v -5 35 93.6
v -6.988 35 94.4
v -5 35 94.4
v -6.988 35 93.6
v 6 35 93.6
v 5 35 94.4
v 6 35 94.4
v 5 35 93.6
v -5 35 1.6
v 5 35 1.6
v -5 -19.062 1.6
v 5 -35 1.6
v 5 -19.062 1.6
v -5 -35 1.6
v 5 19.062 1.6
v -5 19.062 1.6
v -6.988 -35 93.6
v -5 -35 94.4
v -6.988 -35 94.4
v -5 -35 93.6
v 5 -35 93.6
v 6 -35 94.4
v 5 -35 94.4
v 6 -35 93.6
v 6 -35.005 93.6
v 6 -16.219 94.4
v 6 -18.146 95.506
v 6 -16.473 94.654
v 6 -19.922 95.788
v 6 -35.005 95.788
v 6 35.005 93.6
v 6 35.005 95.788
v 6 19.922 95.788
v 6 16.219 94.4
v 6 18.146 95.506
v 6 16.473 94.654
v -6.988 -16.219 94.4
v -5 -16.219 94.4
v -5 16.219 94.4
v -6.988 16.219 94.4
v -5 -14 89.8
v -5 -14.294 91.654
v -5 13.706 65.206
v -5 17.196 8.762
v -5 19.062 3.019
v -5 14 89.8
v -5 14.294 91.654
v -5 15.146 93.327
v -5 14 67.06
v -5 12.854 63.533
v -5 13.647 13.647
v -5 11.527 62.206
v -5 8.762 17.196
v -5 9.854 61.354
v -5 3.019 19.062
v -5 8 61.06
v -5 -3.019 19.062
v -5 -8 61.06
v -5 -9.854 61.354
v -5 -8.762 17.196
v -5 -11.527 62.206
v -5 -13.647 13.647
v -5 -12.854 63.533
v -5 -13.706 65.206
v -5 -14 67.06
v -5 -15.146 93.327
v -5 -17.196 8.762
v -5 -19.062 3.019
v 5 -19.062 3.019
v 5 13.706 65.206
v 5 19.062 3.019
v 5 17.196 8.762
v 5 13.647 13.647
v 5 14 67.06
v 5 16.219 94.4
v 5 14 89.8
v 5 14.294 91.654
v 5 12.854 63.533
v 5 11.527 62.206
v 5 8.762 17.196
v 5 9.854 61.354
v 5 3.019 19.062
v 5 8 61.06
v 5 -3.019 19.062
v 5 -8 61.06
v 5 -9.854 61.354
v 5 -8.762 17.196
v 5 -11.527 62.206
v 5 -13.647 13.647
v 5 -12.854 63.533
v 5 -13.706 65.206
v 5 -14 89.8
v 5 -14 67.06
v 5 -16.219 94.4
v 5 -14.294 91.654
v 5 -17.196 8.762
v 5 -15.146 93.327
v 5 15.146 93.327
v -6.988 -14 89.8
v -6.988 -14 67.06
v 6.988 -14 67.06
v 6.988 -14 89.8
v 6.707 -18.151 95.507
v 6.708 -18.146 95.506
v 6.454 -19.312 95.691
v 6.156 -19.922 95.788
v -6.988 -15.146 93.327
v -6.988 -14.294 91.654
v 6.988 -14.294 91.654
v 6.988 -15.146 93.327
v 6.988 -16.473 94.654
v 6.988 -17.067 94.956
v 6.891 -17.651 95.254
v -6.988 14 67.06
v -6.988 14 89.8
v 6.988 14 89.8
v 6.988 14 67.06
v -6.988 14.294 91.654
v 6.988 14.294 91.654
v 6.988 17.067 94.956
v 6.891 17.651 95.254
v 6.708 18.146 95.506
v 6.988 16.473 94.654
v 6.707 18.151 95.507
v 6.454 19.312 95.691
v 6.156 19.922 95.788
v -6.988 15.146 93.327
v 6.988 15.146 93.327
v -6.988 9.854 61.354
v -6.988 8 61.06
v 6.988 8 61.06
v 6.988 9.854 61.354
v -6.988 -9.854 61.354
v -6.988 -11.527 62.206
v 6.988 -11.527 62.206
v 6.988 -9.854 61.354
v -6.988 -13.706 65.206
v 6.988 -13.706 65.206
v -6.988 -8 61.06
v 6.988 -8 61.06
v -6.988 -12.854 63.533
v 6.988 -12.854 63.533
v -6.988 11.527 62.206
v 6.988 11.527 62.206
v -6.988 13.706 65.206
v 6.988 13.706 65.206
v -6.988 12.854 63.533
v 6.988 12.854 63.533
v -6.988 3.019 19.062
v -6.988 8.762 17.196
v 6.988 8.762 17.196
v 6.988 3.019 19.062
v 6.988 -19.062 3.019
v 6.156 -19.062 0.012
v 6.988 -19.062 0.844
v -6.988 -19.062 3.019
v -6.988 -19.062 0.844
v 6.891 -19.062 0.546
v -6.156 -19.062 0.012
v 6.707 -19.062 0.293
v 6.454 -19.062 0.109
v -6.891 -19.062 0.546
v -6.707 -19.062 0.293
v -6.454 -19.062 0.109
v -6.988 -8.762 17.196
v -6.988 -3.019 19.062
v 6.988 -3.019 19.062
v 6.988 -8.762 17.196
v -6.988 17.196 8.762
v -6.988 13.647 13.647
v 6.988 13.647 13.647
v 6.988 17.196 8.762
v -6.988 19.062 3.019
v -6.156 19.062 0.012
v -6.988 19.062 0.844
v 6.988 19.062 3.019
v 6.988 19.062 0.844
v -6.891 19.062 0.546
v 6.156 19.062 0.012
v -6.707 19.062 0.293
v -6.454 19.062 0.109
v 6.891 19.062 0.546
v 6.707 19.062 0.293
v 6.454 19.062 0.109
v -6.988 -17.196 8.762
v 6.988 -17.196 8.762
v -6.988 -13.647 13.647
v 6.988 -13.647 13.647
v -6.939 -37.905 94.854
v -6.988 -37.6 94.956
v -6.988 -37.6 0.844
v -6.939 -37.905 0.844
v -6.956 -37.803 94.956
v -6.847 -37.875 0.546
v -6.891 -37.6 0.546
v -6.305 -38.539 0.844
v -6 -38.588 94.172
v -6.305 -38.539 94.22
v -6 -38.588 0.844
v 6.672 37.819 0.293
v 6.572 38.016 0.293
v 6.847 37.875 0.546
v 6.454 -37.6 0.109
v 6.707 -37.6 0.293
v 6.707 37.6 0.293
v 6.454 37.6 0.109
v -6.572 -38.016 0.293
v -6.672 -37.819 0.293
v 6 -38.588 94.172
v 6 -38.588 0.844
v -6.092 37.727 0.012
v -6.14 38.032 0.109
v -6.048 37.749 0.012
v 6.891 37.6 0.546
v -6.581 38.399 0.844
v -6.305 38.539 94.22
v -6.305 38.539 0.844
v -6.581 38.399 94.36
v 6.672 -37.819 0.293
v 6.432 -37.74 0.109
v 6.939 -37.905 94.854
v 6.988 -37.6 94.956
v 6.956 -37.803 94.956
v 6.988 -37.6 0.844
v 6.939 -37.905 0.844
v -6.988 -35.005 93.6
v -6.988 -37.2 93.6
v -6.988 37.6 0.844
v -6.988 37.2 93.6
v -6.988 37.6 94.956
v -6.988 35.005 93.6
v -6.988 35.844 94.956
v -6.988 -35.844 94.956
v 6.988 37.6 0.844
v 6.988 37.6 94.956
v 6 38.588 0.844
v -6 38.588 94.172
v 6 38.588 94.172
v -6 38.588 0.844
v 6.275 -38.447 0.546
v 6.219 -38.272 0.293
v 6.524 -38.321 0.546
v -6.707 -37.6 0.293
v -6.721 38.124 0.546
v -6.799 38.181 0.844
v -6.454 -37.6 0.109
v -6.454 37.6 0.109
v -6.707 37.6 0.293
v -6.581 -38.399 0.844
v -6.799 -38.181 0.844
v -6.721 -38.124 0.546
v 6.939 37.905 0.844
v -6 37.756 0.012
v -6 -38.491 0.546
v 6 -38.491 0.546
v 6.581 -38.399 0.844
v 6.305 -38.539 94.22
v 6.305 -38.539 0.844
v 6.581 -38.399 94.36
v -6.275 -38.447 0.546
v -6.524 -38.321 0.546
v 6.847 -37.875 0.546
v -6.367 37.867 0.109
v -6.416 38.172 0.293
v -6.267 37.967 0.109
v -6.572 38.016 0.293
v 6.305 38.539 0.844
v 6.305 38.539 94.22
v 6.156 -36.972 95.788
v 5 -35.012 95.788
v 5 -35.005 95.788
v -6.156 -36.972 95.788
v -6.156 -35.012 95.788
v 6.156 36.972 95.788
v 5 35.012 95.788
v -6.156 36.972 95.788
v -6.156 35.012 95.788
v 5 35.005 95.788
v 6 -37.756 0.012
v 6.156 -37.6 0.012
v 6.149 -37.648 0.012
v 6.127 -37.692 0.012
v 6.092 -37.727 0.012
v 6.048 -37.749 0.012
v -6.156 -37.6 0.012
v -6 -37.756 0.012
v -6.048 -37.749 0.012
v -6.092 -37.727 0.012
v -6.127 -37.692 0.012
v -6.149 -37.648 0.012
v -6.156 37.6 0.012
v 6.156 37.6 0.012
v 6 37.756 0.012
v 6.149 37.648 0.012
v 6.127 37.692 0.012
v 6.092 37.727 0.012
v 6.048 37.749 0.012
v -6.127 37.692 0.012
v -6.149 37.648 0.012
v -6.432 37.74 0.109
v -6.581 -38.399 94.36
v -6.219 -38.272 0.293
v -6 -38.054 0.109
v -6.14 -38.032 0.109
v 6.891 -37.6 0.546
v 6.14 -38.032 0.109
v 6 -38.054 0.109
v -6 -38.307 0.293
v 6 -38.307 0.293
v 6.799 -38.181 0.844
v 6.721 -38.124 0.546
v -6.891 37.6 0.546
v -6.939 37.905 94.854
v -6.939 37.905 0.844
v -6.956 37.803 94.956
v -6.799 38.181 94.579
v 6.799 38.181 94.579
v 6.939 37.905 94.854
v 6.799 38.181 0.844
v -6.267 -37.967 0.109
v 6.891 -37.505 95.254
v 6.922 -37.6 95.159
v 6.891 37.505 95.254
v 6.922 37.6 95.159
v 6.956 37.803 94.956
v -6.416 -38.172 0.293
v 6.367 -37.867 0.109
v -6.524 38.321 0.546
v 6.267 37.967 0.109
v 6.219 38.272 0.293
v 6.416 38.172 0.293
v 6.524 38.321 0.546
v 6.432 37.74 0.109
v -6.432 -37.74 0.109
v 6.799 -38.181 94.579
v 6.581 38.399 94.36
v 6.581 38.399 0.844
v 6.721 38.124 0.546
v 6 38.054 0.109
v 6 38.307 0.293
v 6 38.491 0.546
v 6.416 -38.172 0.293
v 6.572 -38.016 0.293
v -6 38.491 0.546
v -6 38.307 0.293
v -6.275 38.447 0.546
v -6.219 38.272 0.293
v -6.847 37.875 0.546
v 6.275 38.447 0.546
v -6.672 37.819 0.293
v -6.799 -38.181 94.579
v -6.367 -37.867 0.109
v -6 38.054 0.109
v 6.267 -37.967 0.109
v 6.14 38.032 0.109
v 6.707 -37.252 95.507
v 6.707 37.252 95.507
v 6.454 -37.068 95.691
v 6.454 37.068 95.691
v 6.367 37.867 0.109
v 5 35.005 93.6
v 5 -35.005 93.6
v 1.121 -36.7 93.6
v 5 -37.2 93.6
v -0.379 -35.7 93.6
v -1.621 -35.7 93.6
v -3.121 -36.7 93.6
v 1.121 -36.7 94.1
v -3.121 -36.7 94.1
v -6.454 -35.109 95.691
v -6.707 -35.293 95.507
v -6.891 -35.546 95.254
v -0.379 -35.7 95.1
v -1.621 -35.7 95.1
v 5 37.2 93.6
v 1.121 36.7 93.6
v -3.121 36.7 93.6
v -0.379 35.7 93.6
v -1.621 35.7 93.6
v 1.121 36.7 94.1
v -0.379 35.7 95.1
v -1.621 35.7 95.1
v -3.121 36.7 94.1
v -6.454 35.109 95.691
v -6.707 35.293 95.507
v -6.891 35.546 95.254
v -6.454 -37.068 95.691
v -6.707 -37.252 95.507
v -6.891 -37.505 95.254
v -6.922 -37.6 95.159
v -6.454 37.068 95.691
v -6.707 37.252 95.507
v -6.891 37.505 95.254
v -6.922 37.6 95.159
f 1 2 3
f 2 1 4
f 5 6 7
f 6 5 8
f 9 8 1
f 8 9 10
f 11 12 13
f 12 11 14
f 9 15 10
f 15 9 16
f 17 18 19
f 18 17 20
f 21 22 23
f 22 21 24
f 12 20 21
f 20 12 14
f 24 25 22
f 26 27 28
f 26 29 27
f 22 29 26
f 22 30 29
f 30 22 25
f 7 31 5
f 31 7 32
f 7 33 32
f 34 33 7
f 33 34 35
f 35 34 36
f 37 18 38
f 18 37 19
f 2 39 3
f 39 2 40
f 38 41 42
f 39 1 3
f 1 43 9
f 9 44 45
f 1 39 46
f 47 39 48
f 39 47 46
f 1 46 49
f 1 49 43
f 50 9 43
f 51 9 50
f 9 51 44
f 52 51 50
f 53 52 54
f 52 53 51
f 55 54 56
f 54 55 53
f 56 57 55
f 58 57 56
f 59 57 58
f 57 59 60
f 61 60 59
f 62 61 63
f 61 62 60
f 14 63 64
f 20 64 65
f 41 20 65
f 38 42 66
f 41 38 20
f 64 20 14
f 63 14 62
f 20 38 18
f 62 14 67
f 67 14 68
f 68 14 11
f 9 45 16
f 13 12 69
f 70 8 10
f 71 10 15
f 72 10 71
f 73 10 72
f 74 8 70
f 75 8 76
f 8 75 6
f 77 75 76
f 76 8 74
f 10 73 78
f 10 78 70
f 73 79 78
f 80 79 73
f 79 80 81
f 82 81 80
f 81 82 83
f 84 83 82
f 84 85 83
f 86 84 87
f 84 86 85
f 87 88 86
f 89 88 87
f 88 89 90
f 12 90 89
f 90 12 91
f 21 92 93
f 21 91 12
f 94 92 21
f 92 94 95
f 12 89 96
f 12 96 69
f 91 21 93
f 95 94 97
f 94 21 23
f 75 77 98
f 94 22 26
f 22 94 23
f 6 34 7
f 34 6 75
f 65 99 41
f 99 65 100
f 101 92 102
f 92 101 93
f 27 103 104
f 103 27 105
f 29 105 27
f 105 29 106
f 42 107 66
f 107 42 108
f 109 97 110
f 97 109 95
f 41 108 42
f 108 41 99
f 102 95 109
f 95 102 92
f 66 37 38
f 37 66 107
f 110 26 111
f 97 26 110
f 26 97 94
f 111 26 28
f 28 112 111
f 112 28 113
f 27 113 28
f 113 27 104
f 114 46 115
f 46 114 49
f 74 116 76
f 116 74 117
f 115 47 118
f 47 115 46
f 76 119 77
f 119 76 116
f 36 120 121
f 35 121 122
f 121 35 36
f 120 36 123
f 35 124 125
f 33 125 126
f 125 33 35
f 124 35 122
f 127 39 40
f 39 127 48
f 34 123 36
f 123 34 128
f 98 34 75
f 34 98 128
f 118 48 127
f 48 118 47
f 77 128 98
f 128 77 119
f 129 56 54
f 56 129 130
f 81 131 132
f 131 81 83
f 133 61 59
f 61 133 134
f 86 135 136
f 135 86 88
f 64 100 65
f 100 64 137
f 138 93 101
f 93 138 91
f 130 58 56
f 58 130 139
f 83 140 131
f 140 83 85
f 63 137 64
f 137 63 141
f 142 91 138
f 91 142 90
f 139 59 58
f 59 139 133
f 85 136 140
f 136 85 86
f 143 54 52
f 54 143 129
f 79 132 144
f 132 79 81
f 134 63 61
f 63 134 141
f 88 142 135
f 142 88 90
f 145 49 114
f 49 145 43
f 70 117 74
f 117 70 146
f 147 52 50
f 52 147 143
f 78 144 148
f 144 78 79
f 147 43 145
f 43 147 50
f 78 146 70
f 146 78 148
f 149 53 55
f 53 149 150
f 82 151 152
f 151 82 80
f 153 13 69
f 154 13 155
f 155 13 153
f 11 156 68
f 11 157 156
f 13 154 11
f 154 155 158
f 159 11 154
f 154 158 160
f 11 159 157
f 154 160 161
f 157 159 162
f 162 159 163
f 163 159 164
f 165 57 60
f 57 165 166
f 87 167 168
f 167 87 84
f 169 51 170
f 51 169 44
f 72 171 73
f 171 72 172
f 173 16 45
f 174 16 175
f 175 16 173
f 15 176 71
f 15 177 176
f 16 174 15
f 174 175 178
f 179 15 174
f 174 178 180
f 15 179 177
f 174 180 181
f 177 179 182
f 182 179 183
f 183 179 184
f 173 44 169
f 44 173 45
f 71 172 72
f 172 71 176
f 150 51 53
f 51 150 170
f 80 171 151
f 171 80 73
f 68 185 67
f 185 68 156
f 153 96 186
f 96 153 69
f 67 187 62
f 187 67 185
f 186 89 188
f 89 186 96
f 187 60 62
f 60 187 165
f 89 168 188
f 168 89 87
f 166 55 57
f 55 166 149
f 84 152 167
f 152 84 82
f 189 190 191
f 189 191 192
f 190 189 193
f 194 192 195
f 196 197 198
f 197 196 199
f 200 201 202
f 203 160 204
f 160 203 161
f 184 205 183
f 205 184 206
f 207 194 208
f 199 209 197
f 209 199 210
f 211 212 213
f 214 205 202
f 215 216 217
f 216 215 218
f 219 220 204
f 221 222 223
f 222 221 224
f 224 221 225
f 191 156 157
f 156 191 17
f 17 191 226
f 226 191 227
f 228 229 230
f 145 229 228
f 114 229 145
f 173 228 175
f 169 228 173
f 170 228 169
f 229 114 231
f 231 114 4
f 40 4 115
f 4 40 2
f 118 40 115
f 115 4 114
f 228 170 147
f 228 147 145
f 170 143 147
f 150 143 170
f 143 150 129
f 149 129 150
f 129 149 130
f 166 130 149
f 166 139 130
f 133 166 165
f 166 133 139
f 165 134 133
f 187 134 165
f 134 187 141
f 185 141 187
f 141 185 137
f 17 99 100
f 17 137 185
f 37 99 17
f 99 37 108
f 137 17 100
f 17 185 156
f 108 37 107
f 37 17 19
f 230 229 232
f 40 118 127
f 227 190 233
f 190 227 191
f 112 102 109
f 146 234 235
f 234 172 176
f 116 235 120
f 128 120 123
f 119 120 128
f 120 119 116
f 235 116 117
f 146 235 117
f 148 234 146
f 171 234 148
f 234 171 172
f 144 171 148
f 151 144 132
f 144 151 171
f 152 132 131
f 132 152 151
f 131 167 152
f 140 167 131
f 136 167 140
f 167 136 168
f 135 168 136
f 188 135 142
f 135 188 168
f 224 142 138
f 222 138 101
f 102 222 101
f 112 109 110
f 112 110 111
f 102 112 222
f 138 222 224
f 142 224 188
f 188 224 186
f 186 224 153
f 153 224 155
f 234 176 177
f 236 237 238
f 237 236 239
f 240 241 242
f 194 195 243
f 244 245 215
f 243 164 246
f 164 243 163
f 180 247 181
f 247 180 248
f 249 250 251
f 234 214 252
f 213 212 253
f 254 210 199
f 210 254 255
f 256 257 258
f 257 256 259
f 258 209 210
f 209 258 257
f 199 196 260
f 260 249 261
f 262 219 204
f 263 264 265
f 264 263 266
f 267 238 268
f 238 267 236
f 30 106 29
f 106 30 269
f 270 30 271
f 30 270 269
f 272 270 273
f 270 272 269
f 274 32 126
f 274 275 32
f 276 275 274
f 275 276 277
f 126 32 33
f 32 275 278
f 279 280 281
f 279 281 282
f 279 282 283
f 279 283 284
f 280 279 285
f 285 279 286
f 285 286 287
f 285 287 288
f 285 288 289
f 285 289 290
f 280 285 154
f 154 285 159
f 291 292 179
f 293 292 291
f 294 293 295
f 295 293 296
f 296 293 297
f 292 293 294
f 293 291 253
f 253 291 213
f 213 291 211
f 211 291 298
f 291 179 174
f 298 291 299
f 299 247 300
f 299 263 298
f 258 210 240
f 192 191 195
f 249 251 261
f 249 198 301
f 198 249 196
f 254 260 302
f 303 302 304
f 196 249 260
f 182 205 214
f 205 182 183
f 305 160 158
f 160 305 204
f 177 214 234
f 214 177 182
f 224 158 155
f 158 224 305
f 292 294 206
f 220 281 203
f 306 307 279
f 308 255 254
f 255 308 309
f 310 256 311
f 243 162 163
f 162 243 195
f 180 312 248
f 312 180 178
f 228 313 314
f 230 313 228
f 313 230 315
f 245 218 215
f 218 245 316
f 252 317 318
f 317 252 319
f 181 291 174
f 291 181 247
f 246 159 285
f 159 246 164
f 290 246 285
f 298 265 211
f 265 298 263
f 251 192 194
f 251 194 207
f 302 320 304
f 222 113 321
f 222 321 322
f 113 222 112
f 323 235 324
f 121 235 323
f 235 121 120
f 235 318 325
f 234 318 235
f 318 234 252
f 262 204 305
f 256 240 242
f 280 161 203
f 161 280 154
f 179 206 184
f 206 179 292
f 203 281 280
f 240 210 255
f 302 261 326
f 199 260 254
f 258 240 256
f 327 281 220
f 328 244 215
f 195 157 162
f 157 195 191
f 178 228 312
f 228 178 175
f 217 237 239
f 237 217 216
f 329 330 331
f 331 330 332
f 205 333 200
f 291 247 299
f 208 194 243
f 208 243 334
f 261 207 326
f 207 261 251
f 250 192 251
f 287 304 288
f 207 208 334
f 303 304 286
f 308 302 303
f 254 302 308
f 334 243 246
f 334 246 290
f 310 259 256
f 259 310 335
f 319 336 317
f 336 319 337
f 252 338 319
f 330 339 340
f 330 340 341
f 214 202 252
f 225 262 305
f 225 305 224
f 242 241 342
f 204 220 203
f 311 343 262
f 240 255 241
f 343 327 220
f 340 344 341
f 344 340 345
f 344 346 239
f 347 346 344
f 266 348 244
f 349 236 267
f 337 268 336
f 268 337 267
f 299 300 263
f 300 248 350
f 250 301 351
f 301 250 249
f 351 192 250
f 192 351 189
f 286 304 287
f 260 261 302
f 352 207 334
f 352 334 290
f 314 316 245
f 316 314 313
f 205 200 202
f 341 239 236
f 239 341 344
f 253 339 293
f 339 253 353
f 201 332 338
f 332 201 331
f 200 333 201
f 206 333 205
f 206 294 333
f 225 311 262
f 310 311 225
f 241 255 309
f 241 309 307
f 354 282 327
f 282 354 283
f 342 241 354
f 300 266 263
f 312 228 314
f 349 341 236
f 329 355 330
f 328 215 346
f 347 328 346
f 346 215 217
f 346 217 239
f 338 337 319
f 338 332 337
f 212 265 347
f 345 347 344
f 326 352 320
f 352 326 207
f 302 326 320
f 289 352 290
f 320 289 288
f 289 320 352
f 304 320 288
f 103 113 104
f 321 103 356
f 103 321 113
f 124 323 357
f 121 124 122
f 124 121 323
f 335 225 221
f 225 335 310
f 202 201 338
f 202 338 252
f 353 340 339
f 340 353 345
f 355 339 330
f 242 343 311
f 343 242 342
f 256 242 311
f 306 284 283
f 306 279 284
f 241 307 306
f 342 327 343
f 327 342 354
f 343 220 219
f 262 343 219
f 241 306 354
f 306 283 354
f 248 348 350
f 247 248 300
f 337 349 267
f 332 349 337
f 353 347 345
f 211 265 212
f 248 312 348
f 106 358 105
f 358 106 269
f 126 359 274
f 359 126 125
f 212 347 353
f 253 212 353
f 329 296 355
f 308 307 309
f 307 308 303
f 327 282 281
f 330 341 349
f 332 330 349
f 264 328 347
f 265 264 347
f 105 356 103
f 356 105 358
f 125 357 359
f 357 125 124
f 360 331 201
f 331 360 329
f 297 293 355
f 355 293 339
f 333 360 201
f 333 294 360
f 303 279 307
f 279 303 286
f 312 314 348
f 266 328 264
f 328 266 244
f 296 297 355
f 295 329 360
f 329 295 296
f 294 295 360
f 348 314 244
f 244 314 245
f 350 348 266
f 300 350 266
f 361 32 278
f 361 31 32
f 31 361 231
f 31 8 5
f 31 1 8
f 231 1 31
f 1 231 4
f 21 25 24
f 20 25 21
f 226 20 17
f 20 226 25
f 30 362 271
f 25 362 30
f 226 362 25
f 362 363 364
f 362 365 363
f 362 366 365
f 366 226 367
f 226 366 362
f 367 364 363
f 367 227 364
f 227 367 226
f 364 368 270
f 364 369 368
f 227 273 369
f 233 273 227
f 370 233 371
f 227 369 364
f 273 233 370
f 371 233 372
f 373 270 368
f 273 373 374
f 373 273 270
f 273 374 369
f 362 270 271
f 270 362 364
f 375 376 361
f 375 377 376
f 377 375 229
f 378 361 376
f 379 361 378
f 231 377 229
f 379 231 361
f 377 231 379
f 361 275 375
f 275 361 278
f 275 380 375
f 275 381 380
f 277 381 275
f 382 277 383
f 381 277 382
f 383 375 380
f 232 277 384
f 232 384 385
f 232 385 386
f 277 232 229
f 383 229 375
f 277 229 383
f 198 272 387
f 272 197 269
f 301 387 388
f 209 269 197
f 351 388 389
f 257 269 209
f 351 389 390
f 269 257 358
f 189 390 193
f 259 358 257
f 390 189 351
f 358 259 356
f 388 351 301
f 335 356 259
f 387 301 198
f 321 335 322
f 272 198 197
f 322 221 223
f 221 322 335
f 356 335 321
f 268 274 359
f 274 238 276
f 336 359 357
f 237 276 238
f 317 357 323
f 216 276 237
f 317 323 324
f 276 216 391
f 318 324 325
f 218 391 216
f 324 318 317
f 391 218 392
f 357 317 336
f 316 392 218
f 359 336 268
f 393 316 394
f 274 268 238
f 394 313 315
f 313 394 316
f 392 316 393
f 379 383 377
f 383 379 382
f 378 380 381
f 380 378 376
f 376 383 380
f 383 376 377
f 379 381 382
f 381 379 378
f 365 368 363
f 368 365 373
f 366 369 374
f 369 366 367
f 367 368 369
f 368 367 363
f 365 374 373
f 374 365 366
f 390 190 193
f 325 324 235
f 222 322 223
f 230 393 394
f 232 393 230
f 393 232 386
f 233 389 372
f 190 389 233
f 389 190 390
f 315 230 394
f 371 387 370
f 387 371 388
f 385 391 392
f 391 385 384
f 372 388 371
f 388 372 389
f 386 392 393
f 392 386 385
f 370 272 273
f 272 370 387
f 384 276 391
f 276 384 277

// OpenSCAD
// Roundness
$fn = 20;
// Wall Thickness
gWT = 1.6;

// Box Height
LidH = 2.2;
RailThick = 1.4;
RailWidth = LidH + RailThick;

// Render
Objects = "Box"; //  [Both, Box, Lid]

// Width of a single card + buffer
CardWidth = 70;    

// Height of a single card (exact)
CardHeight = 92;  

// Box Height  (Total = height card + gWT (bottom) + 2.2 lid + buffer)
BoxHeight = CardHeight+gWT+LidH; 

// Size of each Card slot
Slots = [10];

// Number of rows of cards
Rows = 1;

// Slant the front of the box 
SlantFront = true;

// Labels for each card slot  (only recommended when Rows=1)
Labels = ["", "Markets", "",""];

// Size of botton cutout, % of width
Removal = 0.5;
AccessDepth = 0.3;



// Tolerance
gTol = 0.3;
// Type of lid pattern
gPattern = "Diamond"; //  [Hex, Diamond, Web, Solid, Fancy]



function SumList(list, start, end) = (start == end) ? list[start] : list[start] + SumList(list, start+1, end);

Angle = (((BoxHeight-gWT)/CardHeight) < 1) ? acos((BoxHeight-gWT)/CardHeight) : 0;
  
//Wall space for tilted wall
gWS =  gWT / cos(Angle);
// BoxWidth = CardWidth + 2*gWT;  obsolete

SlotsAdj = [for (i = [0:len(Slots)-1]) Slots[i]/cos(Angle)];
BoxLength = SumList(SlotsAdj,0,len(SlotsAdj)-1) + 2 *(len(Slots)+1);
RailPlace = [for (i = [0:len(Slots)-1]) -BoxLength/2 + SumList(SlotsAdj,0,i)+ (i+1)*2 ];

TotalX = BoxLength;
TotalY = CardWidth + 2*RailWidth;
TotalZ = BoxHeight;

// Height not counting the lid
AdjBoxHeight = TotalZ - LidH;

// final diminsions 
echo(TotalX,TotalY,TotalZ, Angle, RailPlace);

module RCube(x,y,z,ipR=4) {
    translate([-x/2,-y/2,0]) hull(){
      translate([ipR,ipR,ipR]) sphere(ipR);
      translate([x-ipR,ipR,ipR]) sphere(ipR);
      translate([ipR,y-ipR,ipR]) sphere(ipR);
      translate([x-ipR,y-ipR,ipR]) sphere(ipR);
      translate([ipR,ipR,z-ipR]) sphere(ipR);
      translate([x-ipR,ipR,z-ipR]) sphere(ipR);
      translate([ipR,y-ipR,z-ipR]) sphere(ipR);
      translate([x-ipR,y-ipR,z-ipR]) sphere(ipR);
      }  
} 

 module regular_polygon(order, r=1){
 	angles=[ for (i = [0:order-1]) i*(360/order) ];
 	coords=[ for (th=angles) [r*cos(th), r*sin(th)] ];
 	polygon(coords);
 }

module football() {
    scale([0.7,0.7])
    intersection(){
        translate([-4,0]) circle(6);
        translate([4,0]) circle(6);
    }
}

module diamond_lattice(ipX, ipY, DSize, WSize)  {

    lOffset = DSize + WSize;

	difference()  {
		square([ipX, ipY]);
		for (x=[0:lOffset:ipX]) {
            for (y=[0:lOffset:ipY]){
  			   translate([x, y])  regular_polygon(4, r=DSize/2);
			   translate([x+lOffset/2, y+lOffset/2]) regular_polygon(4, r=DSize/2);
		    }
        }        
	}
}

module leaf_lattice(ipX, ipY, DSize, WSize)  {
    lXOffset = 4;
    lYOffset = 22;

	difference()  {
		square([ipX, ipY]);
		for (x=[0:lXOffset:ipX]) {
            for (y=[0:lYOffset:ipY+lYOffset]){
  			   translate([x, y+(1/8*lYOffset)+0.5]) rotate([0,0,-45]) football();
			   translate([x, y+(3/8*lYOffset)]) rotate([0,0,45]) football();
  			   translate([x, y-(1/8*lYOffset)-0.5]) rotate([0,0,-45]) football();
			   translate([x, y-(3/8*lYOffset)]) rotate([0,0,45]) football();		}
        }  
	}
}

module lid(ipPattern = "Hex", ipTol = 0.3){
  lAdjX = TotalX;  // remove 1mm for the backstop
  lAdjY = TotalY-RailWidth*2-ipTol*2;  
  lAdjZ = LidH;
  CutX = lAdjX - 8;
  CutY = lAdjY - 8;
  lFingerX = 15;
  lFingerY = 16;  

  // main square with center removed for a pattern. 0.01 addition is a kludge to avoid a 2d surface remainging when substracting the lid from the box.
  difference() {
      translate([0,0,lAdjZ/2]) cube([lAdjX+0.01, lAdjY+0.01 , lAdjZ], center=true);

      translate([0,0,lAdjZ/2]) cube([CutX, CutY, lAdjZ], center = true);

      // remove 1mm for backdrop
//      translate([TotalX/2-1/2,0,LidH/2])cube([1.01,TotalY-RailWidth,LidH],center=true);

     // make a slot for the latch can flex         
     translate([TotalX/2,TotalY/2-RailWidth-1.4,-1]) RCube(18,0.8,4,0.4);
     translate([TotalX/2,-TotalY/2+RailWidth+1.4,-1]) RCube(18,0.8,4,0.4);
  }
  
  // The Side triangles
  difference() {
    intersection () {
      union () {
          translate([-lAdjX/2,-lAdjY/2-LidH,LidH]) rotate([0,90,0]) linear_extrude(TotalX-2) polygon([[LidH,0],[LidH,LidH],[0,LidH]], paths=[[0,1,2]]);
          translate([-lAdjX/2,lAdjY/2,LidH]) rotate([0,90,0]) linear_extrude(TotalX-2) polygon([[0,0],[LidH,0],[LidH,LidH]], paths=[[0,1,2]]);
      }
      
      // check if this is real lid (ipTol>0) or negative lid (iptol = 0)
      // if real lid remove center for pattern and remove latches
      if (ipTol>0) 
         {cube([lAdjX, lAdjY + 2*LidH-0.2, lAdjZ*2], center=true);}
    }
       
    if (ipTol>0)
    {
        // cut out slots for the latch  7mm in instead of 8 due to backstop   
        translate([TotalX/2-7,lAdjY/2+RailWidth/2+ipTol,LidH/2]) scale([1.5,1,1]) rotate([0,0,45]) cube ([2+ipTol,2+ipTol,LidH+1],center=true);
          
        translate([TotalX/2-7,-lAdjY/2-RailWidth/2-ipTol,LidH/2]) scale([1.5,1,1]) rotate([0,0,45]) cube ([2+ipTol,2+ipTol,LidH+1],center=true);
  
        // trip the rail to ease going past the nub
        translate([TotalX/2,TotalY/2-LidH/2-ipTol,0]) cube([12,LidH,LidH*2],center=true); 
        translate([TotalX/2,-TotalY/2+LidH/2+ipTol,0]) cube([12,LidH,LidH*2],center=true); 
    }
    
  }
 
  // Finger slot
  difference () {
      translate([-CutX/2,-lFingerY/2,0]) cube([lFingerX, lFingerY, lAdjZ]); 
      translate([-CutX/2+lFingerX/2,0,20+LidH/2])sphere(20);     
  }

  // Solid top
  if (ipPattern == "Solid") 
      {   
       difference (){ 
         translate([-CutX/2,-CutY/2,0]) cube([CutX, CutY,   lAdjZ]);
         translate([-CutX/2,-lFingerY/2,0]) cube([lFingerX, lFingerY, lAdjZ]); 
      }
    }
    
  // Diamond top
  if (ipPattern == "Diamond") 
    {
      difference (){ 
        translate([-CutX/2,-CutY/2,0]) linear_extrude(height = lAdjZ) diamond_lattice(CutX,CutY,7,2);
        translate([-CutX/2,-lFingerY/2,0]) cube([lFingerX, lFingerY, lAdjZ]); 
      }
    }
    
    
  // Leaf top
  if (ipPattern == "Leaf") 
    {   
       difference (){ 
         translate([-CutX/2,-CutY/2,0]) linear_extrude(height = lAdjZ) leaf_lattice(CutX,CutY,4,2);
         translate([-CutX/2,-lFingerY/2,0]) cube([lFingerX, lFingerY, lAdjZ]); 
      }
    }

}


//  Main Box
module Box() {
   intersection() 
   {
     RCube(TotalX,TotalY,TotalZ,1);
       
     difference() // Box + dividers - access - weight reduction
     {  
        union() // Box with Dividers
        { 
            // add backstop
            translate([TotalX/2-1/2,0,TotalZ-LidH/2])cube([1,TotalY-RailWidth,2*LidH],center=true);
            
           difference() // Box shell with names on outside
           {    
              translate ([0,0,AdjBoxHeight/2]) cube([TotalX,TotalY,AdjBoxHeight], center = true);
                   
              // Hollow out the box  
              translate([0,0,BoxHeight/2+gWT]) cube([TotalX,TotalY-2*RailWidth,BoxHeight], center=true);
                   
               
           }  // shell of box
              
           // add the dividers  
           translate([-TotalX/2+1,0,gWT+CardHeight/2]) cube([2, CardWidth, AdjBoxHeight],center=true);
           for(x=[0:len(Slots)-1]) {  
              translate([RailPlace[x]+1,0,gWT+CardHeight/2]) cube([2, CardWidth, AdjBoxHeight],center=true);
           }
               
        } // End the union after here is substraction
              
        // create gap at top to access the cards
        AccessWidth = CardWidth * 0.4;
        hull(){
            translate([0,-AccessWidth/2+6,BoxHeight+10]) rotate([0,90,0])cylinder(r=6,h=TotalX,center=true);;
            translate([0,AccessWidth/2-6,BoxHeight+10]) rotate([0,90,0])cylinder(r=6,h=TotalX,center=true);;
            translate([0,-AccessWidth/2+6,BoxHeight*(1-AccessDepth)])rotate([0,90,0])cylinder(r=6,h=TotalX,center=true);;
            translate([0,AccessWidth/2-6,BoxHeight*(1-AccessDepth)])rotate([0,90,0])cylinder(r=6,h=TotalX,center=true);;
        } // hull
         
            translate([0,-AccessWidth/2-6,BoxHeight-6])difference(){
               cube([TotalX,12,12], center = true);
               rotate([0,90,0])cylinder(r=6,h=TotalX,center=true);
                translate([0,-6,0])cube([TotalX,12,12], center = true);
                translate([0,0,-6])cube([TotalX,12,12], center = true);
            }
           translate([0,+AccessWidth/2+6,BoxHeight-6]) difference(){
               cube([TotalX,12,12], center = true);
               rotate([0,90,0])cylinder(r=6,h=TotalX,center=true);
                translate([0,6,0])cube([TotalX,12,12], center = true);
                translate([0,0,-6])cube([TotalX,12,12], center = true);
            }

        // Remove some from the bottem to reduce plastic
        hull() {
            translate([TotalX/2-(TotalY*Removal/2)-15,0,0]) sphere(r=(TotalY*Removal)/2);
            translate([-TotalX/2+(TotalY*Removal/2)+15,0,0]) sphere (r=(TotalY*Removal)/2);
        }
           
      } // end diff
   }  // Instersection
   
  // top rails
  difference() {
      union() {
          translate([0,-TotalY/2+RailWidth/2,AdjBoxHeight+LidH/2]) cube([TotalX,RailWidth,LidH],center = true);  
          translate([0,TotalY/2-RailWidth/2,AdjBoxHeight+LidH/2]) cube([TotalX,RailWidth,LidH],center = true);
           }
       
      // Trim each rail top to a 45 degree angle     
      translate([0,-TotalY/2,AdjBoxHeight+RailWidth]) rotate([45,0,0]) cube([TotalX,RailWidth+0.7,RailWidth+0.7], center=true); 
      translate([0,TotalY/2,AdjBoxHeight+RailWidth])  rotate([45,0,0]) cube([TotalX,RailWidth+0.7,RailWidth+0.7], center=true);  

      // Substract the lid from the rails
      translate([0,0,AdjBoxHeight]) lid(ipPattern = "Solid",ipTol =0);      
  }  
    
  // create the latches 
    translate([TotalX/2-8,TotalY/2-0.1-RailWidth/2,TotalZ-LidH/2]) scale([1.5,1,1]) difference(){
      rotate([0,0,45]) cube ([2,2,LidH+1],center=true);
      translate([0,2,0]) cube ([4,4,LidH+2],center=true);
      translate([0,-2,0])cube([2,2,LidH+2], center=true);
      }  
    translate([TotalX/2-8,-TotalY/2+0.1+RailWidth/2,TotalZ-LidH/2]) scale([1.5,1,1]) difference(){
      rotate([0,0,45]) cube ([2,2,LidH+1],center=true);
      translate([0,-2,0]) cube ([4,4,LidH+2],center=true);
      translate([0,2,0])cube([2,2,LidH+2], center=true);
    }
}




// Production Box
if ((Objects == "Both") || (Objects == "Box")){
   intersection() 
   {
     RCube(TotalX,TotalY,TotalZ,1);
     Box();
   }
}

// translate([0,0,TotalZ+2]) lid(ipPattern = gPattern, ipTol = gTol);


// Production Lid
if ((Objects == "Both")  || (Objects == "Lid")){
  intersection() {
      translate([-TotalX/2,0,0]) lid(ipPattern = gPattern, ipTol = gTol);
      translate([-TotalX/2+0.5,0,LidH/2]) cube([TotalX-1,TotalY,LidH],center=true);
  }
}
